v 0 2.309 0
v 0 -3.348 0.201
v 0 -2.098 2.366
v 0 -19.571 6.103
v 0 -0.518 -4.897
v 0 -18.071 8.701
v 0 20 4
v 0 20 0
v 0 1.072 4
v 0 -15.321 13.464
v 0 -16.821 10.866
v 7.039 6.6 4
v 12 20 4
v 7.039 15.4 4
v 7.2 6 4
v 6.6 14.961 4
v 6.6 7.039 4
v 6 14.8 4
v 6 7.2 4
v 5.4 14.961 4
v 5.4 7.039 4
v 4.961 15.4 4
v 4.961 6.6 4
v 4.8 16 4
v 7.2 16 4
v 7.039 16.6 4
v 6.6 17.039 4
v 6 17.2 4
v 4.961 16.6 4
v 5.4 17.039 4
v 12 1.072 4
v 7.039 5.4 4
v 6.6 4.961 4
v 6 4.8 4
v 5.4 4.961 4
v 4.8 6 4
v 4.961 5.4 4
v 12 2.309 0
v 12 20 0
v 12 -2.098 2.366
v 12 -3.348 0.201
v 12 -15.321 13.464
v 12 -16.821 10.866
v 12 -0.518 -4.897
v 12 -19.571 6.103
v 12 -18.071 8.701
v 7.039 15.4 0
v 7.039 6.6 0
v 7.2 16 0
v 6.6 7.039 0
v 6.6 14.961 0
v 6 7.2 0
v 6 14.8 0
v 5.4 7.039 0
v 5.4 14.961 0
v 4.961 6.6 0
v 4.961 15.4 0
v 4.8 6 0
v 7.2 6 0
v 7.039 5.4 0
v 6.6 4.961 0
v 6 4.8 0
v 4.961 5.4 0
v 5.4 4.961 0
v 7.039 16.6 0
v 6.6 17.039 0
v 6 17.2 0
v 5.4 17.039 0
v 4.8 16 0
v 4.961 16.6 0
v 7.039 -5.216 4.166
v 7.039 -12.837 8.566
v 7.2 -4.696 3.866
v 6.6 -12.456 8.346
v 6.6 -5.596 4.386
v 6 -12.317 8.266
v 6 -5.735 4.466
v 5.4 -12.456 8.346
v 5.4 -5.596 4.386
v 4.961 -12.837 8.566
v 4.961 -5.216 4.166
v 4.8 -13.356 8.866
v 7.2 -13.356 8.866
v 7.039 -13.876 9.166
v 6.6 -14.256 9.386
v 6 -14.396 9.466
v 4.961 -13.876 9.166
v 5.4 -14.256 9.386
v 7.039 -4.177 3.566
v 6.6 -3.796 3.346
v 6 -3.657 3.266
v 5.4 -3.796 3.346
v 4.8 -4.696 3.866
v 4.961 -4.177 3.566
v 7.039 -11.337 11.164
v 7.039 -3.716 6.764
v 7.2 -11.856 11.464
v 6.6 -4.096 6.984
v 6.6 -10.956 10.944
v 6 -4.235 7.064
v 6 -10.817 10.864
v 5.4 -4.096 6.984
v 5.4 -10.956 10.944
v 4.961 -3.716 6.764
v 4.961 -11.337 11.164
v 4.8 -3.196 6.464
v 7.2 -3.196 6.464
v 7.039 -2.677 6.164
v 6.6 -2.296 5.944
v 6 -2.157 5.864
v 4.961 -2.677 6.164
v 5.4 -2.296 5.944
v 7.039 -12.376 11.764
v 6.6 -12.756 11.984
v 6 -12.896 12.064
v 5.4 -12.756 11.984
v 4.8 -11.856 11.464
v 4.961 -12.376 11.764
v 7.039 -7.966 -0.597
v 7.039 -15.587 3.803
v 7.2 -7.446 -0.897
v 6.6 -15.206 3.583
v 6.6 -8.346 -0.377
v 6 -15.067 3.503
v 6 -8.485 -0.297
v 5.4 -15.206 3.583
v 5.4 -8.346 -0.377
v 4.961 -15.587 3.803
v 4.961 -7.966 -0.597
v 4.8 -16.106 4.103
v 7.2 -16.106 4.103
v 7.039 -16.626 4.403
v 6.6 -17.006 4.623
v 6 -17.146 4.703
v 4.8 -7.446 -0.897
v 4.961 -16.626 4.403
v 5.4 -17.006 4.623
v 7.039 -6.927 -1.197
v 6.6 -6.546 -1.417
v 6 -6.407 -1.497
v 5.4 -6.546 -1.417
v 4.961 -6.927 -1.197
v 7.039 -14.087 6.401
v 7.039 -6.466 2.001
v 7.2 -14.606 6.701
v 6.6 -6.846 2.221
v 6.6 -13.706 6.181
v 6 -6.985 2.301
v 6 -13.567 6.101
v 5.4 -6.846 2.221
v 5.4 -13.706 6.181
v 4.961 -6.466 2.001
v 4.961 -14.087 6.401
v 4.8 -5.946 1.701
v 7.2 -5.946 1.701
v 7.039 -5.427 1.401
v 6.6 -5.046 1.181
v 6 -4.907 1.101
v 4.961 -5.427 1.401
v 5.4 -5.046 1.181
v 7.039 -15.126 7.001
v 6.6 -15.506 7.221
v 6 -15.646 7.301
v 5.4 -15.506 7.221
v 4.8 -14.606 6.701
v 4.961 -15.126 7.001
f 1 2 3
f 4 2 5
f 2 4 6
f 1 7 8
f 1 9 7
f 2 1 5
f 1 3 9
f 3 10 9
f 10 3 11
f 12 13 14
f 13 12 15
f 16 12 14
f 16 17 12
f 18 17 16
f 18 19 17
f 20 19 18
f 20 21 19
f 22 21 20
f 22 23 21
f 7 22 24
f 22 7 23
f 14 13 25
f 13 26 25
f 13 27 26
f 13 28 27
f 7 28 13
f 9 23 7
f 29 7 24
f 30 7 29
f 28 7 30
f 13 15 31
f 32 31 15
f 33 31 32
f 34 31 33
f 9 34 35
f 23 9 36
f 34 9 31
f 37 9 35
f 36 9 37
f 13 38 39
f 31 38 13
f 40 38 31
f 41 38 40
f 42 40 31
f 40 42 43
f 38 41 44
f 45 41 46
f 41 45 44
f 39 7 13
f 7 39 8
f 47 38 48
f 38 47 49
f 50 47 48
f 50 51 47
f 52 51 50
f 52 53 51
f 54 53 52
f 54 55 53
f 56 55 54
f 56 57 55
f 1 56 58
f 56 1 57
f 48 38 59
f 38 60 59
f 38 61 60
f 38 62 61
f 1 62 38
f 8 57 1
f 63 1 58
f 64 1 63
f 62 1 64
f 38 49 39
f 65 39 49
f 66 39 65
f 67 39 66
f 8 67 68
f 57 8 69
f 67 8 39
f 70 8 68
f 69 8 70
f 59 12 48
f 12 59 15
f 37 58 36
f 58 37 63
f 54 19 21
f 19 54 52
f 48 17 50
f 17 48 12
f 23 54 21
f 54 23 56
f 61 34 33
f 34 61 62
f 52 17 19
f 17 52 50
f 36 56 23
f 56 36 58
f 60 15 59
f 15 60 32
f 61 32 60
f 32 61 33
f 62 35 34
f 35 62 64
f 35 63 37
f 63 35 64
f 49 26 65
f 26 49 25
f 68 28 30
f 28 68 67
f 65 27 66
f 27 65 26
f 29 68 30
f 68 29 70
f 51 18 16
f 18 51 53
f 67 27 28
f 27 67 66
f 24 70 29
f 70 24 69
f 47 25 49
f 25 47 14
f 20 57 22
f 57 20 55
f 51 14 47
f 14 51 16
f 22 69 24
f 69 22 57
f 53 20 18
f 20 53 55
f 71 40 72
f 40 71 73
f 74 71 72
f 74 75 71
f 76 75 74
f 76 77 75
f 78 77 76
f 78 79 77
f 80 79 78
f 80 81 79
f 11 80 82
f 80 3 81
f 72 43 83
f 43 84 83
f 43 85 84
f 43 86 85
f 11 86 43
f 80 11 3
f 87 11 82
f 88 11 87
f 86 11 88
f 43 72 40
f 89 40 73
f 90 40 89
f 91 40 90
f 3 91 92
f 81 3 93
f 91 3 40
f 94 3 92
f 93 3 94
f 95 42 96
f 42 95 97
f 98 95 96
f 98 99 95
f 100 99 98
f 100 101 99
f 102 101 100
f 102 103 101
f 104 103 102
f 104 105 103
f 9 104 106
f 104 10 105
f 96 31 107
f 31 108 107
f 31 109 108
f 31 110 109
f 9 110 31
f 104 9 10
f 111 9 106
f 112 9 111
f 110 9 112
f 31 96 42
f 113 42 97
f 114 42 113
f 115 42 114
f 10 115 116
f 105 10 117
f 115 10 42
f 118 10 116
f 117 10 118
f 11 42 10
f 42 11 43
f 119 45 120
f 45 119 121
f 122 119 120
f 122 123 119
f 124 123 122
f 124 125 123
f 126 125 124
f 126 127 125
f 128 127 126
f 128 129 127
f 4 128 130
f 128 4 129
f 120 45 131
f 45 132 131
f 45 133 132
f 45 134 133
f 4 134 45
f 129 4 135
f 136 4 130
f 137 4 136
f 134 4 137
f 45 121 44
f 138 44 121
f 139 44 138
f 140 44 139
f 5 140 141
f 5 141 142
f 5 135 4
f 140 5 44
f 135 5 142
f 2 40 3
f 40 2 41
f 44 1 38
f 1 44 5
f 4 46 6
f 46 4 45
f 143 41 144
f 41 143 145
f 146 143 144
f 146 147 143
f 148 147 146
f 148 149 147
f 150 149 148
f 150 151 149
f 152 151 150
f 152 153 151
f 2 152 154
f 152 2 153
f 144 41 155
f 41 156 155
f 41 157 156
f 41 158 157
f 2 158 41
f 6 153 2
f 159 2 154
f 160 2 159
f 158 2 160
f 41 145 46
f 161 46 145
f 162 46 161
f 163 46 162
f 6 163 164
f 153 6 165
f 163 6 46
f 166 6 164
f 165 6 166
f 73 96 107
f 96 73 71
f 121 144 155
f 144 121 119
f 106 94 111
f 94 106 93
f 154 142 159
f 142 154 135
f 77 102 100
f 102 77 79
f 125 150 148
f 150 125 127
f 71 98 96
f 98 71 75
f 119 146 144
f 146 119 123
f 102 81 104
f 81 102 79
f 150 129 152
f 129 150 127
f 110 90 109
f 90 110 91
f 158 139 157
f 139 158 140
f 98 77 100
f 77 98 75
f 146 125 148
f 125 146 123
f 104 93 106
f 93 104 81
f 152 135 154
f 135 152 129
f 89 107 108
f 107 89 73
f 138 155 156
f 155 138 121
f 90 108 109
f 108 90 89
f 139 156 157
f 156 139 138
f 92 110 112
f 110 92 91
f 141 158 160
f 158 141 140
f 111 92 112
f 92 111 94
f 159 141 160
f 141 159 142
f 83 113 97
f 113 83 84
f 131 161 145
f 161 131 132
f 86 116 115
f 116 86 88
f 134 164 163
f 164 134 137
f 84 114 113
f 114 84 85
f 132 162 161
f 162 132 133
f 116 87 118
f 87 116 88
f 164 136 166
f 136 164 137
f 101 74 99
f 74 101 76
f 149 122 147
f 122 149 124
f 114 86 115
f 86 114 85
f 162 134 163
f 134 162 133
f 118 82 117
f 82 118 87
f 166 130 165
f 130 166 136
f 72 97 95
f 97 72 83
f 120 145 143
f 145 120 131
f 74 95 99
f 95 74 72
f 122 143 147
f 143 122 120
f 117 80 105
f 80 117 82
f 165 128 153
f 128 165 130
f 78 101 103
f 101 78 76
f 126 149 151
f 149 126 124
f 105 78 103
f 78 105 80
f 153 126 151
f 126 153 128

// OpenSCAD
difference(){
cube([12,20,4]);
translate([6,6,-1])cylinder(d=2.4,h=7,$fn=12);
translate([6,16,-1])cylinder(d=2.4,h=7,$fn=12);
}
rotate([150,0,0])translate([0,0,-4])
difference(){
union(){
cube([12,20,3]);
translate([0,-2.0])cube([12,5,8.5]);
translate([0,0,5.5])cube([12,20,3]);
}
translate([6,6,-1])cylinder(d=2.4,h=10,$fn=12);
translate([6,16,-1])cylinder(d=2.4,h=10,$fn=12);
}
